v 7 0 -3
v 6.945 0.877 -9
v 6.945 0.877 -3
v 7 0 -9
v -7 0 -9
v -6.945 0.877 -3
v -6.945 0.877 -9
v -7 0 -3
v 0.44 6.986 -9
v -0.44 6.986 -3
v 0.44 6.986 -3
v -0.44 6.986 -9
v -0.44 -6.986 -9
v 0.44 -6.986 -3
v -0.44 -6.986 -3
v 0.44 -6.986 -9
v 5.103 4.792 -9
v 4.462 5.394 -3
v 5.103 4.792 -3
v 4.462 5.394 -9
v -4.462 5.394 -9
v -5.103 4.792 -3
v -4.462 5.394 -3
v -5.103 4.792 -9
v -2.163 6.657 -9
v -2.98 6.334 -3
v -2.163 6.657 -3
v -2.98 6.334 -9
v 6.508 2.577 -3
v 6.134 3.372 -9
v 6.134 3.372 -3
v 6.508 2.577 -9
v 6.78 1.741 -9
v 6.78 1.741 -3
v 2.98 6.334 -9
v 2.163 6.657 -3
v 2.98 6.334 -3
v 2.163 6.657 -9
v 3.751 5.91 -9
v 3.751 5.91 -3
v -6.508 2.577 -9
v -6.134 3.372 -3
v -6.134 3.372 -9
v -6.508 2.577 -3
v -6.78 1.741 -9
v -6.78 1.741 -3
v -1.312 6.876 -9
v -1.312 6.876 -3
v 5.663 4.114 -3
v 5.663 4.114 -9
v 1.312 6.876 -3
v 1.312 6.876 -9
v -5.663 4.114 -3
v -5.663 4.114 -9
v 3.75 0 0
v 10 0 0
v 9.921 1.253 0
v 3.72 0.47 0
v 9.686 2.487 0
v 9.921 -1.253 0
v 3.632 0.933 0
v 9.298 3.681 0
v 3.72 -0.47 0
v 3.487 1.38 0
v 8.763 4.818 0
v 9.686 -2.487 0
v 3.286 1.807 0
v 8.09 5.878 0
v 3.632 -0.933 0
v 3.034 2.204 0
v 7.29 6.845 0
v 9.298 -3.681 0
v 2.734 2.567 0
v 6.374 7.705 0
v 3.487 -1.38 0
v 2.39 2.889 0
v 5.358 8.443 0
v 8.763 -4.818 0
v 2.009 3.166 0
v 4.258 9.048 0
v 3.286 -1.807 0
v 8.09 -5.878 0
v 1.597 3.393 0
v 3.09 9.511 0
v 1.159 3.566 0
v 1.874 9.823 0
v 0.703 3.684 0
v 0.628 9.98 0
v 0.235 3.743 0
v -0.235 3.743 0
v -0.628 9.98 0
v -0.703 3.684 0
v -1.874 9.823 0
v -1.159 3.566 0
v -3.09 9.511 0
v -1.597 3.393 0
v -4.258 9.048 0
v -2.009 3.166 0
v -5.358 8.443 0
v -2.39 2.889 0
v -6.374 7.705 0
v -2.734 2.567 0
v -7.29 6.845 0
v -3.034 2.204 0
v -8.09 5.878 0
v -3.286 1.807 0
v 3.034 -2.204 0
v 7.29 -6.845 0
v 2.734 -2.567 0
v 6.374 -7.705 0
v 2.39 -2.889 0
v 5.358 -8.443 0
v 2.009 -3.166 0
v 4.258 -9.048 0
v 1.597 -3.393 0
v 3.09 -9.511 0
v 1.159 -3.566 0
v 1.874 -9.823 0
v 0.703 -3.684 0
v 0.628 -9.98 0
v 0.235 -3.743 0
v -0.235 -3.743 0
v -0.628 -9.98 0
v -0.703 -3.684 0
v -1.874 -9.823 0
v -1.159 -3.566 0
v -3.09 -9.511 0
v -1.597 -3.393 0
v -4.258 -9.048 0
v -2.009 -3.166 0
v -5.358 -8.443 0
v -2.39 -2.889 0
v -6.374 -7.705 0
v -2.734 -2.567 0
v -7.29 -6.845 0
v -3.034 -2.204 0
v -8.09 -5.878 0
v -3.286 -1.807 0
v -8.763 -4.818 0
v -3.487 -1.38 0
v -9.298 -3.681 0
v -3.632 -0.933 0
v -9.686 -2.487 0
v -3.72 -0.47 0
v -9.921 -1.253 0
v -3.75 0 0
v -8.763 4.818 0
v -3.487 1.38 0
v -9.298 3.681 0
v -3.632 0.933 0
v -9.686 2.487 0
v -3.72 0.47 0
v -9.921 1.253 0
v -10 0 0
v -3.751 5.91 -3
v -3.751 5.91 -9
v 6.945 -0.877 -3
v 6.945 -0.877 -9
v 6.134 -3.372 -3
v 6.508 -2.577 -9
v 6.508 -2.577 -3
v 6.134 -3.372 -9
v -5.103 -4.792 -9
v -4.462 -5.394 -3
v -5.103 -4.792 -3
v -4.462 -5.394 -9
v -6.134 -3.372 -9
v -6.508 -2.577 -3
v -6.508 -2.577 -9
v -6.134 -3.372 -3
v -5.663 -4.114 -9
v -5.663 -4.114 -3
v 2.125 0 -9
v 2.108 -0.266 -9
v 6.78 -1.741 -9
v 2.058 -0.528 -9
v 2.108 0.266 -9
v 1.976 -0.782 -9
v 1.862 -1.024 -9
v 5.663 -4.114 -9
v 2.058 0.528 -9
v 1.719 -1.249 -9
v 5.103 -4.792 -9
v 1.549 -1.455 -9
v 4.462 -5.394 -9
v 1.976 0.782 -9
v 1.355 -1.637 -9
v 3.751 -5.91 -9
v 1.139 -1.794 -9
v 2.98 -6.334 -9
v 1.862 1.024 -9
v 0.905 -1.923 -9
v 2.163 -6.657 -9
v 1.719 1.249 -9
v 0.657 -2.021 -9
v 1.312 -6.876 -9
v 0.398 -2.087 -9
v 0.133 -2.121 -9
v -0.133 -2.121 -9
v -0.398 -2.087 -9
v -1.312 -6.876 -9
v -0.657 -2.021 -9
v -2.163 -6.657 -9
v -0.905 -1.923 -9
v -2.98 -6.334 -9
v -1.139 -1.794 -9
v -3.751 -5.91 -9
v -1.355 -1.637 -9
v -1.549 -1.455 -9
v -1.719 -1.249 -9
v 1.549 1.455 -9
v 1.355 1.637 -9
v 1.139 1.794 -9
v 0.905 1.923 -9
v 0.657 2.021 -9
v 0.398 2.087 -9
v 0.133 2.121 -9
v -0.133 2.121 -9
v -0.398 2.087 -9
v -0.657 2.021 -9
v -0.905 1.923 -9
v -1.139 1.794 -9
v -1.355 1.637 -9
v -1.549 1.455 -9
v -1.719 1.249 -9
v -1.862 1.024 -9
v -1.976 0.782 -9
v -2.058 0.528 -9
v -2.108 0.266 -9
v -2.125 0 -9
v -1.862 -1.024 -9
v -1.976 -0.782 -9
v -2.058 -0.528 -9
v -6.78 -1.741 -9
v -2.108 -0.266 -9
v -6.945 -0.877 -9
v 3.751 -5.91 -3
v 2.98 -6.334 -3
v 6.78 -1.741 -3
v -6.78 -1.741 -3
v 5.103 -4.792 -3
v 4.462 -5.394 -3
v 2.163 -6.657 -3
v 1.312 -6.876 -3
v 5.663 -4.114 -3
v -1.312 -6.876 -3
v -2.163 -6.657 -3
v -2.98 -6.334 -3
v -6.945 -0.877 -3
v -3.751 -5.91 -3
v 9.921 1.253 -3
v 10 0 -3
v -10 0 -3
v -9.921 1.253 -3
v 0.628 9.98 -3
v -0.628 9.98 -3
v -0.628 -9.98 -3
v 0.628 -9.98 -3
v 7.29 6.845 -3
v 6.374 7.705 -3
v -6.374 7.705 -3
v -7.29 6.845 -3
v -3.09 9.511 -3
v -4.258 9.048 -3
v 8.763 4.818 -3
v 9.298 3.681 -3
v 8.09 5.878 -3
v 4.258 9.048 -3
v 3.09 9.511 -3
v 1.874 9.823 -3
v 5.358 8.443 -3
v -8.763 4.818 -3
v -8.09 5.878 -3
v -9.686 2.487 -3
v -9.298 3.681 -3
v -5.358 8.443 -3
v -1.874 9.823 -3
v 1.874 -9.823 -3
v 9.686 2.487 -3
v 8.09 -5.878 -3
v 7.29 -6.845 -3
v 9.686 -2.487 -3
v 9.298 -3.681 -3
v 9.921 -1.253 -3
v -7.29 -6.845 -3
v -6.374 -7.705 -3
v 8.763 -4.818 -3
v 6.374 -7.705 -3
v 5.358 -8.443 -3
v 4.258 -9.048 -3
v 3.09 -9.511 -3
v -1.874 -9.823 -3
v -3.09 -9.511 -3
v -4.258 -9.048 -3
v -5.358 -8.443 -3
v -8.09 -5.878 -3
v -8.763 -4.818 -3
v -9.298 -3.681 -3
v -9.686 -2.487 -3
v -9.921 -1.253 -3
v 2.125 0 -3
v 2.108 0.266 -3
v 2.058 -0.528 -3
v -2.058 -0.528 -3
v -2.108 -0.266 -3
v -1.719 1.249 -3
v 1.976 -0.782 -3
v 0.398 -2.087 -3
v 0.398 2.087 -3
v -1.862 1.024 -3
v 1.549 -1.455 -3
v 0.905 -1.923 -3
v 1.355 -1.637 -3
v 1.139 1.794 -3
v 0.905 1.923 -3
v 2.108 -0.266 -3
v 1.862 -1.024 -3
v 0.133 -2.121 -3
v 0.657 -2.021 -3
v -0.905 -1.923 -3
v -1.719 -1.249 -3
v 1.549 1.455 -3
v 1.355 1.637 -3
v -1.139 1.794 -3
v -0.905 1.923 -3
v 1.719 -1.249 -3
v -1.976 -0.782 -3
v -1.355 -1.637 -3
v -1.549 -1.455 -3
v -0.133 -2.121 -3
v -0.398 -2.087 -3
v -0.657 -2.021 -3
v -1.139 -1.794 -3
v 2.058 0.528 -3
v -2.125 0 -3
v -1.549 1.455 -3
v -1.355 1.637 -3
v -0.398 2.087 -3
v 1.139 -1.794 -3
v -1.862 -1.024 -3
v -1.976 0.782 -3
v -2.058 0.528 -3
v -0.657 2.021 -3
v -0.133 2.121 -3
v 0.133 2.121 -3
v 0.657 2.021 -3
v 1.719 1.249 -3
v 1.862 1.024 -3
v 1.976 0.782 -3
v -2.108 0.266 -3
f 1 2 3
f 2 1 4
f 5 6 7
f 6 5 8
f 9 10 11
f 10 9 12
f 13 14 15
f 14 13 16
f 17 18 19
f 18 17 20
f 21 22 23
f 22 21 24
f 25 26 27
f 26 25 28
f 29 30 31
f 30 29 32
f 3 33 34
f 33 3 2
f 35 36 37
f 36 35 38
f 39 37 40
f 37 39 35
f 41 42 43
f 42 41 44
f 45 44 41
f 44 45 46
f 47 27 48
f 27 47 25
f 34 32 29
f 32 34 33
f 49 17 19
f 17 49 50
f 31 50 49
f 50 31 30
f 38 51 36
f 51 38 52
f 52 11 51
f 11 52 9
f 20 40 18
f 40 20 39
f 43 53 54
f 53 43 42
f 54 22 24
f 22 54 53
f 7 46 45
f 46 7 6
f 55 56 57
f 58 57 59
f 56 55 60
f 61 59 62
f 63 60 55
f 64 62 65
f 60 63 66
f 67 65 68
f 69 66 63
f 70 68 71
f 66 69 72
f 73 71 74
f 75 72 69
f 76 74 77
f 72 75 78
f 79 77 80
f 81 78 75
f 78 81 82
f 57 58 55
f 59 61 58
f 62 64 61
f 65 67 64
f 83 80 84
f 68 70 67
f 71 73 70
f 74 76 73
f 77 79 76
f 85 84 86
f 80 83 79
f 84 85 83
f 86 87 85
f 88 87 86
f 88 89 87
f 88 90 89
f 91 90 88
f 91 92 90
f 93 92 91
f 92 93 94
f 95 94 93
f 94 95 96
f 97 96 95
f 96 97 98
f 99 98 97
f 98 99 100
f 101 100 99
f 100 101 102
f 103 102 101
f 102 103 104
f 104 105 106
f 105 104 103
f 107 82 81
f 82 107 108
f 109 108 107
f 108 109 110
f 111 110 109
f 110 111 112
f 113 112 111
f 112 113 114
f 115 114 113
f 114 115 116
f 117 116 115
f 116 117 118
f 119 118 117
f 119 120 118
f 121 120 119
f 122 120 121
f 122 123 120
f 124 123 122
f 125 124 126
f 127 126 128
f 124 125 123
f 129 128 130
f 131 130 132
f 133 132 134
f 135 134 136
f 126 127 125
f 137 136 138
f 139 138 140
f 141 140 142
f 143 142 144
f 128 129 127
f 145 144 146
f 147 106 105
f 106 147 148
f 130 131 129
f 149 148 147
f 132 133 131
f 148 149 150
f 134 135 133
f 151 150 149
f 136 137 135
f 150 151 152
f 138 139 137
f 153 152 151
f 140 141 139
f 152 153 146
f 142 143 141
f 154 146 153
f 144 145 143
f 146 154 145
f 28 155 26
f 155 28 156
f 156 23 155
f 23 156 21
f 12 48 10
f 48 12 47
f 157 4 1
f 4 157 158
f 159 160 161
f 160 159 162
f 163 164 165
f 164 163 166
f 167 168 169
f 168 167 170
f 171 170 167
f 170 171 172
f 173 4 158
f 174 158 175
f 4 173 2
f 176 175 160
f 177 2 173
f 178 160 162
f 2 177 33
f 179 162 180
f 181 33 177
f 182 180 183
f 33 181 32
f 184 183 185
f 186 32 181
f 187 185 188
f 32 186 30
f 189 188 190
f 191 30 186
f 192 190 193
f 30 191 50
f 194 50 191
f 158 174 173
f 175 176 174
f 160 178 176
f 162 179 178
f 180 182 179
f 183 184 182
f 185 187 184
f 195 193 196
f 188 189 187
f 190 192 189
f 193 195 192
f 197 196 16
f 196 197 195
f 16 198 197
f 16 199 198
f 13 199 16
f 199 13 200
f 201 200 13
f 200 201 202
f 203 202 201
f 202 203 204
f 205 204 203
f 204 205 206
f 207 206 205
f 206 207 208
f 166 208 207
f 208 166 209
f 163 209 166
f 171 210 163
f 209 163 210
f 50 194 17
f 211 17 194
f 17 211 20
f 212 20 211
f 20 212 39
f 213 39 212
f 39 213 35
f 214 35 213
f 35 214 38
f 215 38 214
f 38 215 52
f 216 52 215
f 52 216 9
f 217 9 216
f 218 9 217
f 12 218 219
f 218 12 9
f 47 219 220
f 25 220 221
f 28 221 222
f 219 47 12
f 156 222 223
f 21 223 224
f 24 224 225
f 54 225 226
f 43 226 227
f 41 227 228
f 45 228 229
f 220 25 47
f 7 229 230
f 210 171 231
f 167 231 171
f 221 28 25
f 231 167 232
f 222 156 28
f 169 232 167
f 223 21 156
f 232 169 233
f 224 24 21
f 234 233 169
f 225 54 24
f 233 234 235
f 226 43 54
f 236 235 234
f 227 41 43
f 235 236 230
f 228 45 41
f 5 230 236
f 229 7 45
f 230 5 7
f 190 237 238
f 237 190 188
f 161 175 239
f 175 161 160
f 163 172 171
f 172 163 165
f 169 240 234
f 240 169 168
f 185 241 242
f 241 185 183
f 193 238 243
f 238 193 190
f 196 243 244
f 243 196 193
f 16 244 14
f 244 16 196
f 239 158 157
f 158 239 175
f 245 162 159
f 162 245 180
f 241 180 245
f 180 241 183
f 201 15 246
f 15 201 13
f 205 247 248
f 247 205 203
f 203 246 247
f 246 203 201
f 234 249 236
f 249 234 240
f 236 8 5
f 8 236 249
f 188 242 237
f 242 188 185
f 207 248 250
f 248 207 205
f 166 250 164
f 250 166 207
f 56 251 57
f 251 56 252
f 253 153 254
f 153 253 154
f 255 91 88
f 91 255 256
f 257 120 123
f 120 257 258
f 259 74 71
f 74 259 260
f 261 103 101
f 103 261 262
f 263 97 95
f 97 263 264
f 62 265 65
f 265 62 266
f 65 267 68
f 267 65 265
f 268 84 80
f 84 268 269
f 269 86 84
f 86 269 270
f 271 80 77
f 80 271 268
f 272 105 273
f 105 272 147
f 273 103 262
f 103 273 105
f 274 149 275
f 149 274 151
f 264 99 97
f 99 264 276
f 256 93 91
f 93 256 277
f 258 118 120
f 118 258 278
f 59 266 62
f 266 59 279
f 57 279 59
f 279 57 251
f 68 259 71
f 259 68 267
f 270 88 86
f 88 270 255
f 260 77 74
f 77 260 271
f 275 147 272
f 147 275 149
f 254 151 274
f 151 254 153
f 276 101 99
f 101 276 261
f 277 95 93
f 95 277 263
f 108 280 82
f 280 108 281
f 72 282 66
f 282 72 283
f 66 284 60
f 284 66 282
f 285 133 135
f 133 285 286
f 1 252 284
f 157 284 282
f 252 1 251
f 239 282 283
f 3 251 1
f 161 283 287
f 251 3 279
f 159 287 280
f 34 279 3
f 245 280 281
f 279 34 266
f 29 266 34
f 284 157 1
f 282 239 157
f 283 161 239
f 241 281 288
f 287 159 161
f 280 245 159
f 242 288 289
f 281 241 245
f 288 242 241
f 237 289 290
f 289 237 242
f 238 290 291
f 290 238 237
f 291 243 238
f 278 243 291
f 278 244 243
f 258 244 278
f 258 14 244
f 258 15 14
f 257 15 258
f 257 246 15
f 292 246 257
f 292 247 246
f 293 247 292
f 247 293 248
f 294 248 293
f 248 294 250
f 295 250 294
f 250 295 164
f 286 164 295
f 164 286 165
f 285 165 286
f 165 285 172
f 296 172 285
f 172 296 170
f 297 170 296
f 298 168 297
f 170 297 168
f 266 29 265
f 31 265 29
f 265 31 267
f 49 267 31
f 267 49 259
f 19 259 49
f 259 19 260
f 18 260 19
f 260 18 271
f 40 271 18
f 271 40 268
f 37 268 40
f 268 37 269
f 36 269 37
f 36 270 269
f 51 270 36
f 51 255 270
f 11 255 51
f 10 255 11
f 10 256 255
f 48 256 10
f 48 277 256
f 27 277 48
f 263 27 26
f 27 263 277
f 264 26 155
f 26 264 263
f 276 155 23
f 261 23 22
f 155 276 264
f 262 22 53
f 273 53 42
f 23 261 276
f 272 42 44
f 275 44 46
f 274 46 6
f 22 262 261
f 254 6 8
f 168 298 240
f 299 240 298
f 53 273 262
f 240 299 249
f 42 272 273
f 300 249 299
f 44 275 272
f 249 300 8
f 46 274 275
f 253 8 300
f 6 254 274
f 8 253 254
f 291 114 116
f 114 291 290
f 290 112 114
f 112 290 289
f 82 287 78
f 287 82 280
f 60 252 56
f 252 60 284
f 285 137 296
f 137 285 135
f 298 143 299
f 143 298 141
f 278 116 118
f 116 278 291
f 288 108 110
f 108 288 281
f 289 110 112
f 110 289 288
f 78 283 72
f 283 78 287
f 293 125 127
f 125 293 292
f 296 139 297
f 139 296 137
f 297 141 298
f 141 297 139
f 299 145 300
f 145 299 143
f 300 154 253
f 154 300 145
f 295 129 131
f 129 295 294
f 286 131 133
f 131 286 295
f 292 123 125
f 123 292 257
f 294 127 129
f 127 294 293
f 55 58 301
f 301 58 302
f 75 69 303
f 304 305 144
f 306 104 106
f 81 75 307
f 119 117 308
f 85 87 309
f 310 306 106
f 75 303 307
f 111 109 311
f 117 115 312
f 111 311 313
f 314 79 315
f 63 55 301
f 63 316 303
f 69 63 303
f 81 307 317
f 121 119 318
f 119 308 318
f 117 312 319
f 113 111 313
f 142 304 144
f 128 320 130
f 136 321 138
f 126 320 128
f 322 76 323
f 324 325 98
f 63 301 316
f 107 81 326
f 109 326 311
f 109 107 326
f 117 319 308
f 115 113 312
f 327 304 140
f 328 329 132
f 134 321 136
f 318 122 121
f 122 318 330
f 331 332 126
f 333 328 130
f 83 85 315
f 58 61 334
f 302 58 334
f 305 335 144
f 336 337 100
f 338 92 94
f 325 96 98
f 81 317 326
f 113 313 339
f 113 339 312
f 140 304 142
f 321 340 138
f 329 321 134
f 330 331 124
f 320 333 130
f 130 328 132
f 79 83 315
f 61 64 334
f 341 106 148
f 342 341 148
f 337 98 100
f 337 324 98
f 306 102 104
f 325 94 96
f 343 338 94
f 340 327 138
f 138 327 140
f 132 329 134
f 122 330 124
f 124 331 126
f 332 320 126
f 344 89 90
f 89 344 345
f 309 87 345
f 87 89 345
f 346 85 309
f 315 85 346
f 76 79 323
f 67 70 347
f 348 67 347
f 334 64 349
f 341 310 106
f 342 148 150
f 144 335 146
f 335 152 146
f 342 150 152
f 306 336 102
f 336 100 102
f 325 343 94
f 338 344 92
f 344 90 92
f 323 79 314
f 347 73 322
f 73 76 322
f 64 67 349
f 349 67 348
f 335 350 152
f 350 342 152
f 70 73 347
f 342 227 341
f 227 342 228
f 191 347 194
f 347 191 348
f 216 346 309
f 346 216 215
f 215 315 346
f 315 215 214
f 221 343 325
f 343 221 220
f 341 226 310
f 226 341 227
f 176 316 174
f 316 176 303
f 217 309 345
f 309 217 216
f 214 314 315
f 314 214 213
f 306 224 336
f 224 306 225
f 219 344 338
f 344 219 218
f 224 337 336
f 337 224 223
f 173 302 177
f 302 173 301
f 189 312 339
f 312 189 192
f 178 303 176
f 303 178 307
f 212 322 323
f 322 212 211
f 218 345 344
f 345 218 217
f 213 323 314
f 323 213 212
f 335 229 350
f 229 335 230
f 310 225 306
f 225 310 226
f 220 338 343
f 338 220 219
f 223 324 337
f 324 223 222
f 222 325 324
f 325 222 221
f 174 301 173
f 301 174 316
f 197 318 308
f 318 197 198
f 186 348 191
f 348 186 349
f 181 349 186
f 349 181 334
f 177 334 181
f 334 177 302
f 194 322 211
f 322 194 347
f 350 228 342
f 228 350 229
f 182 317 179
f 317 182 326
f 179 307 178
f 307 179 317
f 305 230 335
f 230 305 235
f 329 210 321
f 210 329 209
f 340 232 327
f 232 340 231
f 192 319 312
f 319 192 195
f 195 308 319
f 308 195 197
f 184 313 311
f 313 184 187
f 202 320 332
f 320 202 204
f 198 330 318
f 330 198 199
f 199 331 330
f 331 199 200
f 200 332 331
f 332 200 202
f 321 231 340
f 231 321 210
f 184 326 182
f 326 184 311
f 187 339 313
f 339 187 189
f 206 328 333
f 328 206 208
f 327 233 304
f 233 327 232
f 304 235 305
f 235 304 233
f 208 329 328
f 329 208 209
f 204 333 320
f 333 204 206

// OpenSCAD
$fn = 50;


difference() {
	union() {
		translate(v = [0, 0, -9.0000000000]) {
			cylinder(h = 9, r = 7.0000000000);
		}
		translate(v = [0, 0, -3.0000000000]) {
			cylinder(h = 3, r = 10.0000000000);
		}
	}
	union() {
		translate(v = [0, 0, 0]) {
			rotate(a = [0, 0, 0]) {
				difference() {
					union() {
						#translate(v = [0, 0, -9.0000000000]) {
							cylinder(h = 9, r = 2.0000000000);
						}
						#translate(v = [0, 0, -3]) {
							cylinder(h = 3, r = 7.0000000000, r1 = 2.1250000000, r2 = 3.7500000000);
						}
						#translate(v = [0, 0, -9.0000000000]) {
							cylinder(h = 9, r = 2.1250000000);
						}
						#translate(v = [0, 0, -9.0000000000]) {
							cylinder(h = 9, r = 2.0000000000);
						}
					}
					union();
				}
			}
		}
	}
}
